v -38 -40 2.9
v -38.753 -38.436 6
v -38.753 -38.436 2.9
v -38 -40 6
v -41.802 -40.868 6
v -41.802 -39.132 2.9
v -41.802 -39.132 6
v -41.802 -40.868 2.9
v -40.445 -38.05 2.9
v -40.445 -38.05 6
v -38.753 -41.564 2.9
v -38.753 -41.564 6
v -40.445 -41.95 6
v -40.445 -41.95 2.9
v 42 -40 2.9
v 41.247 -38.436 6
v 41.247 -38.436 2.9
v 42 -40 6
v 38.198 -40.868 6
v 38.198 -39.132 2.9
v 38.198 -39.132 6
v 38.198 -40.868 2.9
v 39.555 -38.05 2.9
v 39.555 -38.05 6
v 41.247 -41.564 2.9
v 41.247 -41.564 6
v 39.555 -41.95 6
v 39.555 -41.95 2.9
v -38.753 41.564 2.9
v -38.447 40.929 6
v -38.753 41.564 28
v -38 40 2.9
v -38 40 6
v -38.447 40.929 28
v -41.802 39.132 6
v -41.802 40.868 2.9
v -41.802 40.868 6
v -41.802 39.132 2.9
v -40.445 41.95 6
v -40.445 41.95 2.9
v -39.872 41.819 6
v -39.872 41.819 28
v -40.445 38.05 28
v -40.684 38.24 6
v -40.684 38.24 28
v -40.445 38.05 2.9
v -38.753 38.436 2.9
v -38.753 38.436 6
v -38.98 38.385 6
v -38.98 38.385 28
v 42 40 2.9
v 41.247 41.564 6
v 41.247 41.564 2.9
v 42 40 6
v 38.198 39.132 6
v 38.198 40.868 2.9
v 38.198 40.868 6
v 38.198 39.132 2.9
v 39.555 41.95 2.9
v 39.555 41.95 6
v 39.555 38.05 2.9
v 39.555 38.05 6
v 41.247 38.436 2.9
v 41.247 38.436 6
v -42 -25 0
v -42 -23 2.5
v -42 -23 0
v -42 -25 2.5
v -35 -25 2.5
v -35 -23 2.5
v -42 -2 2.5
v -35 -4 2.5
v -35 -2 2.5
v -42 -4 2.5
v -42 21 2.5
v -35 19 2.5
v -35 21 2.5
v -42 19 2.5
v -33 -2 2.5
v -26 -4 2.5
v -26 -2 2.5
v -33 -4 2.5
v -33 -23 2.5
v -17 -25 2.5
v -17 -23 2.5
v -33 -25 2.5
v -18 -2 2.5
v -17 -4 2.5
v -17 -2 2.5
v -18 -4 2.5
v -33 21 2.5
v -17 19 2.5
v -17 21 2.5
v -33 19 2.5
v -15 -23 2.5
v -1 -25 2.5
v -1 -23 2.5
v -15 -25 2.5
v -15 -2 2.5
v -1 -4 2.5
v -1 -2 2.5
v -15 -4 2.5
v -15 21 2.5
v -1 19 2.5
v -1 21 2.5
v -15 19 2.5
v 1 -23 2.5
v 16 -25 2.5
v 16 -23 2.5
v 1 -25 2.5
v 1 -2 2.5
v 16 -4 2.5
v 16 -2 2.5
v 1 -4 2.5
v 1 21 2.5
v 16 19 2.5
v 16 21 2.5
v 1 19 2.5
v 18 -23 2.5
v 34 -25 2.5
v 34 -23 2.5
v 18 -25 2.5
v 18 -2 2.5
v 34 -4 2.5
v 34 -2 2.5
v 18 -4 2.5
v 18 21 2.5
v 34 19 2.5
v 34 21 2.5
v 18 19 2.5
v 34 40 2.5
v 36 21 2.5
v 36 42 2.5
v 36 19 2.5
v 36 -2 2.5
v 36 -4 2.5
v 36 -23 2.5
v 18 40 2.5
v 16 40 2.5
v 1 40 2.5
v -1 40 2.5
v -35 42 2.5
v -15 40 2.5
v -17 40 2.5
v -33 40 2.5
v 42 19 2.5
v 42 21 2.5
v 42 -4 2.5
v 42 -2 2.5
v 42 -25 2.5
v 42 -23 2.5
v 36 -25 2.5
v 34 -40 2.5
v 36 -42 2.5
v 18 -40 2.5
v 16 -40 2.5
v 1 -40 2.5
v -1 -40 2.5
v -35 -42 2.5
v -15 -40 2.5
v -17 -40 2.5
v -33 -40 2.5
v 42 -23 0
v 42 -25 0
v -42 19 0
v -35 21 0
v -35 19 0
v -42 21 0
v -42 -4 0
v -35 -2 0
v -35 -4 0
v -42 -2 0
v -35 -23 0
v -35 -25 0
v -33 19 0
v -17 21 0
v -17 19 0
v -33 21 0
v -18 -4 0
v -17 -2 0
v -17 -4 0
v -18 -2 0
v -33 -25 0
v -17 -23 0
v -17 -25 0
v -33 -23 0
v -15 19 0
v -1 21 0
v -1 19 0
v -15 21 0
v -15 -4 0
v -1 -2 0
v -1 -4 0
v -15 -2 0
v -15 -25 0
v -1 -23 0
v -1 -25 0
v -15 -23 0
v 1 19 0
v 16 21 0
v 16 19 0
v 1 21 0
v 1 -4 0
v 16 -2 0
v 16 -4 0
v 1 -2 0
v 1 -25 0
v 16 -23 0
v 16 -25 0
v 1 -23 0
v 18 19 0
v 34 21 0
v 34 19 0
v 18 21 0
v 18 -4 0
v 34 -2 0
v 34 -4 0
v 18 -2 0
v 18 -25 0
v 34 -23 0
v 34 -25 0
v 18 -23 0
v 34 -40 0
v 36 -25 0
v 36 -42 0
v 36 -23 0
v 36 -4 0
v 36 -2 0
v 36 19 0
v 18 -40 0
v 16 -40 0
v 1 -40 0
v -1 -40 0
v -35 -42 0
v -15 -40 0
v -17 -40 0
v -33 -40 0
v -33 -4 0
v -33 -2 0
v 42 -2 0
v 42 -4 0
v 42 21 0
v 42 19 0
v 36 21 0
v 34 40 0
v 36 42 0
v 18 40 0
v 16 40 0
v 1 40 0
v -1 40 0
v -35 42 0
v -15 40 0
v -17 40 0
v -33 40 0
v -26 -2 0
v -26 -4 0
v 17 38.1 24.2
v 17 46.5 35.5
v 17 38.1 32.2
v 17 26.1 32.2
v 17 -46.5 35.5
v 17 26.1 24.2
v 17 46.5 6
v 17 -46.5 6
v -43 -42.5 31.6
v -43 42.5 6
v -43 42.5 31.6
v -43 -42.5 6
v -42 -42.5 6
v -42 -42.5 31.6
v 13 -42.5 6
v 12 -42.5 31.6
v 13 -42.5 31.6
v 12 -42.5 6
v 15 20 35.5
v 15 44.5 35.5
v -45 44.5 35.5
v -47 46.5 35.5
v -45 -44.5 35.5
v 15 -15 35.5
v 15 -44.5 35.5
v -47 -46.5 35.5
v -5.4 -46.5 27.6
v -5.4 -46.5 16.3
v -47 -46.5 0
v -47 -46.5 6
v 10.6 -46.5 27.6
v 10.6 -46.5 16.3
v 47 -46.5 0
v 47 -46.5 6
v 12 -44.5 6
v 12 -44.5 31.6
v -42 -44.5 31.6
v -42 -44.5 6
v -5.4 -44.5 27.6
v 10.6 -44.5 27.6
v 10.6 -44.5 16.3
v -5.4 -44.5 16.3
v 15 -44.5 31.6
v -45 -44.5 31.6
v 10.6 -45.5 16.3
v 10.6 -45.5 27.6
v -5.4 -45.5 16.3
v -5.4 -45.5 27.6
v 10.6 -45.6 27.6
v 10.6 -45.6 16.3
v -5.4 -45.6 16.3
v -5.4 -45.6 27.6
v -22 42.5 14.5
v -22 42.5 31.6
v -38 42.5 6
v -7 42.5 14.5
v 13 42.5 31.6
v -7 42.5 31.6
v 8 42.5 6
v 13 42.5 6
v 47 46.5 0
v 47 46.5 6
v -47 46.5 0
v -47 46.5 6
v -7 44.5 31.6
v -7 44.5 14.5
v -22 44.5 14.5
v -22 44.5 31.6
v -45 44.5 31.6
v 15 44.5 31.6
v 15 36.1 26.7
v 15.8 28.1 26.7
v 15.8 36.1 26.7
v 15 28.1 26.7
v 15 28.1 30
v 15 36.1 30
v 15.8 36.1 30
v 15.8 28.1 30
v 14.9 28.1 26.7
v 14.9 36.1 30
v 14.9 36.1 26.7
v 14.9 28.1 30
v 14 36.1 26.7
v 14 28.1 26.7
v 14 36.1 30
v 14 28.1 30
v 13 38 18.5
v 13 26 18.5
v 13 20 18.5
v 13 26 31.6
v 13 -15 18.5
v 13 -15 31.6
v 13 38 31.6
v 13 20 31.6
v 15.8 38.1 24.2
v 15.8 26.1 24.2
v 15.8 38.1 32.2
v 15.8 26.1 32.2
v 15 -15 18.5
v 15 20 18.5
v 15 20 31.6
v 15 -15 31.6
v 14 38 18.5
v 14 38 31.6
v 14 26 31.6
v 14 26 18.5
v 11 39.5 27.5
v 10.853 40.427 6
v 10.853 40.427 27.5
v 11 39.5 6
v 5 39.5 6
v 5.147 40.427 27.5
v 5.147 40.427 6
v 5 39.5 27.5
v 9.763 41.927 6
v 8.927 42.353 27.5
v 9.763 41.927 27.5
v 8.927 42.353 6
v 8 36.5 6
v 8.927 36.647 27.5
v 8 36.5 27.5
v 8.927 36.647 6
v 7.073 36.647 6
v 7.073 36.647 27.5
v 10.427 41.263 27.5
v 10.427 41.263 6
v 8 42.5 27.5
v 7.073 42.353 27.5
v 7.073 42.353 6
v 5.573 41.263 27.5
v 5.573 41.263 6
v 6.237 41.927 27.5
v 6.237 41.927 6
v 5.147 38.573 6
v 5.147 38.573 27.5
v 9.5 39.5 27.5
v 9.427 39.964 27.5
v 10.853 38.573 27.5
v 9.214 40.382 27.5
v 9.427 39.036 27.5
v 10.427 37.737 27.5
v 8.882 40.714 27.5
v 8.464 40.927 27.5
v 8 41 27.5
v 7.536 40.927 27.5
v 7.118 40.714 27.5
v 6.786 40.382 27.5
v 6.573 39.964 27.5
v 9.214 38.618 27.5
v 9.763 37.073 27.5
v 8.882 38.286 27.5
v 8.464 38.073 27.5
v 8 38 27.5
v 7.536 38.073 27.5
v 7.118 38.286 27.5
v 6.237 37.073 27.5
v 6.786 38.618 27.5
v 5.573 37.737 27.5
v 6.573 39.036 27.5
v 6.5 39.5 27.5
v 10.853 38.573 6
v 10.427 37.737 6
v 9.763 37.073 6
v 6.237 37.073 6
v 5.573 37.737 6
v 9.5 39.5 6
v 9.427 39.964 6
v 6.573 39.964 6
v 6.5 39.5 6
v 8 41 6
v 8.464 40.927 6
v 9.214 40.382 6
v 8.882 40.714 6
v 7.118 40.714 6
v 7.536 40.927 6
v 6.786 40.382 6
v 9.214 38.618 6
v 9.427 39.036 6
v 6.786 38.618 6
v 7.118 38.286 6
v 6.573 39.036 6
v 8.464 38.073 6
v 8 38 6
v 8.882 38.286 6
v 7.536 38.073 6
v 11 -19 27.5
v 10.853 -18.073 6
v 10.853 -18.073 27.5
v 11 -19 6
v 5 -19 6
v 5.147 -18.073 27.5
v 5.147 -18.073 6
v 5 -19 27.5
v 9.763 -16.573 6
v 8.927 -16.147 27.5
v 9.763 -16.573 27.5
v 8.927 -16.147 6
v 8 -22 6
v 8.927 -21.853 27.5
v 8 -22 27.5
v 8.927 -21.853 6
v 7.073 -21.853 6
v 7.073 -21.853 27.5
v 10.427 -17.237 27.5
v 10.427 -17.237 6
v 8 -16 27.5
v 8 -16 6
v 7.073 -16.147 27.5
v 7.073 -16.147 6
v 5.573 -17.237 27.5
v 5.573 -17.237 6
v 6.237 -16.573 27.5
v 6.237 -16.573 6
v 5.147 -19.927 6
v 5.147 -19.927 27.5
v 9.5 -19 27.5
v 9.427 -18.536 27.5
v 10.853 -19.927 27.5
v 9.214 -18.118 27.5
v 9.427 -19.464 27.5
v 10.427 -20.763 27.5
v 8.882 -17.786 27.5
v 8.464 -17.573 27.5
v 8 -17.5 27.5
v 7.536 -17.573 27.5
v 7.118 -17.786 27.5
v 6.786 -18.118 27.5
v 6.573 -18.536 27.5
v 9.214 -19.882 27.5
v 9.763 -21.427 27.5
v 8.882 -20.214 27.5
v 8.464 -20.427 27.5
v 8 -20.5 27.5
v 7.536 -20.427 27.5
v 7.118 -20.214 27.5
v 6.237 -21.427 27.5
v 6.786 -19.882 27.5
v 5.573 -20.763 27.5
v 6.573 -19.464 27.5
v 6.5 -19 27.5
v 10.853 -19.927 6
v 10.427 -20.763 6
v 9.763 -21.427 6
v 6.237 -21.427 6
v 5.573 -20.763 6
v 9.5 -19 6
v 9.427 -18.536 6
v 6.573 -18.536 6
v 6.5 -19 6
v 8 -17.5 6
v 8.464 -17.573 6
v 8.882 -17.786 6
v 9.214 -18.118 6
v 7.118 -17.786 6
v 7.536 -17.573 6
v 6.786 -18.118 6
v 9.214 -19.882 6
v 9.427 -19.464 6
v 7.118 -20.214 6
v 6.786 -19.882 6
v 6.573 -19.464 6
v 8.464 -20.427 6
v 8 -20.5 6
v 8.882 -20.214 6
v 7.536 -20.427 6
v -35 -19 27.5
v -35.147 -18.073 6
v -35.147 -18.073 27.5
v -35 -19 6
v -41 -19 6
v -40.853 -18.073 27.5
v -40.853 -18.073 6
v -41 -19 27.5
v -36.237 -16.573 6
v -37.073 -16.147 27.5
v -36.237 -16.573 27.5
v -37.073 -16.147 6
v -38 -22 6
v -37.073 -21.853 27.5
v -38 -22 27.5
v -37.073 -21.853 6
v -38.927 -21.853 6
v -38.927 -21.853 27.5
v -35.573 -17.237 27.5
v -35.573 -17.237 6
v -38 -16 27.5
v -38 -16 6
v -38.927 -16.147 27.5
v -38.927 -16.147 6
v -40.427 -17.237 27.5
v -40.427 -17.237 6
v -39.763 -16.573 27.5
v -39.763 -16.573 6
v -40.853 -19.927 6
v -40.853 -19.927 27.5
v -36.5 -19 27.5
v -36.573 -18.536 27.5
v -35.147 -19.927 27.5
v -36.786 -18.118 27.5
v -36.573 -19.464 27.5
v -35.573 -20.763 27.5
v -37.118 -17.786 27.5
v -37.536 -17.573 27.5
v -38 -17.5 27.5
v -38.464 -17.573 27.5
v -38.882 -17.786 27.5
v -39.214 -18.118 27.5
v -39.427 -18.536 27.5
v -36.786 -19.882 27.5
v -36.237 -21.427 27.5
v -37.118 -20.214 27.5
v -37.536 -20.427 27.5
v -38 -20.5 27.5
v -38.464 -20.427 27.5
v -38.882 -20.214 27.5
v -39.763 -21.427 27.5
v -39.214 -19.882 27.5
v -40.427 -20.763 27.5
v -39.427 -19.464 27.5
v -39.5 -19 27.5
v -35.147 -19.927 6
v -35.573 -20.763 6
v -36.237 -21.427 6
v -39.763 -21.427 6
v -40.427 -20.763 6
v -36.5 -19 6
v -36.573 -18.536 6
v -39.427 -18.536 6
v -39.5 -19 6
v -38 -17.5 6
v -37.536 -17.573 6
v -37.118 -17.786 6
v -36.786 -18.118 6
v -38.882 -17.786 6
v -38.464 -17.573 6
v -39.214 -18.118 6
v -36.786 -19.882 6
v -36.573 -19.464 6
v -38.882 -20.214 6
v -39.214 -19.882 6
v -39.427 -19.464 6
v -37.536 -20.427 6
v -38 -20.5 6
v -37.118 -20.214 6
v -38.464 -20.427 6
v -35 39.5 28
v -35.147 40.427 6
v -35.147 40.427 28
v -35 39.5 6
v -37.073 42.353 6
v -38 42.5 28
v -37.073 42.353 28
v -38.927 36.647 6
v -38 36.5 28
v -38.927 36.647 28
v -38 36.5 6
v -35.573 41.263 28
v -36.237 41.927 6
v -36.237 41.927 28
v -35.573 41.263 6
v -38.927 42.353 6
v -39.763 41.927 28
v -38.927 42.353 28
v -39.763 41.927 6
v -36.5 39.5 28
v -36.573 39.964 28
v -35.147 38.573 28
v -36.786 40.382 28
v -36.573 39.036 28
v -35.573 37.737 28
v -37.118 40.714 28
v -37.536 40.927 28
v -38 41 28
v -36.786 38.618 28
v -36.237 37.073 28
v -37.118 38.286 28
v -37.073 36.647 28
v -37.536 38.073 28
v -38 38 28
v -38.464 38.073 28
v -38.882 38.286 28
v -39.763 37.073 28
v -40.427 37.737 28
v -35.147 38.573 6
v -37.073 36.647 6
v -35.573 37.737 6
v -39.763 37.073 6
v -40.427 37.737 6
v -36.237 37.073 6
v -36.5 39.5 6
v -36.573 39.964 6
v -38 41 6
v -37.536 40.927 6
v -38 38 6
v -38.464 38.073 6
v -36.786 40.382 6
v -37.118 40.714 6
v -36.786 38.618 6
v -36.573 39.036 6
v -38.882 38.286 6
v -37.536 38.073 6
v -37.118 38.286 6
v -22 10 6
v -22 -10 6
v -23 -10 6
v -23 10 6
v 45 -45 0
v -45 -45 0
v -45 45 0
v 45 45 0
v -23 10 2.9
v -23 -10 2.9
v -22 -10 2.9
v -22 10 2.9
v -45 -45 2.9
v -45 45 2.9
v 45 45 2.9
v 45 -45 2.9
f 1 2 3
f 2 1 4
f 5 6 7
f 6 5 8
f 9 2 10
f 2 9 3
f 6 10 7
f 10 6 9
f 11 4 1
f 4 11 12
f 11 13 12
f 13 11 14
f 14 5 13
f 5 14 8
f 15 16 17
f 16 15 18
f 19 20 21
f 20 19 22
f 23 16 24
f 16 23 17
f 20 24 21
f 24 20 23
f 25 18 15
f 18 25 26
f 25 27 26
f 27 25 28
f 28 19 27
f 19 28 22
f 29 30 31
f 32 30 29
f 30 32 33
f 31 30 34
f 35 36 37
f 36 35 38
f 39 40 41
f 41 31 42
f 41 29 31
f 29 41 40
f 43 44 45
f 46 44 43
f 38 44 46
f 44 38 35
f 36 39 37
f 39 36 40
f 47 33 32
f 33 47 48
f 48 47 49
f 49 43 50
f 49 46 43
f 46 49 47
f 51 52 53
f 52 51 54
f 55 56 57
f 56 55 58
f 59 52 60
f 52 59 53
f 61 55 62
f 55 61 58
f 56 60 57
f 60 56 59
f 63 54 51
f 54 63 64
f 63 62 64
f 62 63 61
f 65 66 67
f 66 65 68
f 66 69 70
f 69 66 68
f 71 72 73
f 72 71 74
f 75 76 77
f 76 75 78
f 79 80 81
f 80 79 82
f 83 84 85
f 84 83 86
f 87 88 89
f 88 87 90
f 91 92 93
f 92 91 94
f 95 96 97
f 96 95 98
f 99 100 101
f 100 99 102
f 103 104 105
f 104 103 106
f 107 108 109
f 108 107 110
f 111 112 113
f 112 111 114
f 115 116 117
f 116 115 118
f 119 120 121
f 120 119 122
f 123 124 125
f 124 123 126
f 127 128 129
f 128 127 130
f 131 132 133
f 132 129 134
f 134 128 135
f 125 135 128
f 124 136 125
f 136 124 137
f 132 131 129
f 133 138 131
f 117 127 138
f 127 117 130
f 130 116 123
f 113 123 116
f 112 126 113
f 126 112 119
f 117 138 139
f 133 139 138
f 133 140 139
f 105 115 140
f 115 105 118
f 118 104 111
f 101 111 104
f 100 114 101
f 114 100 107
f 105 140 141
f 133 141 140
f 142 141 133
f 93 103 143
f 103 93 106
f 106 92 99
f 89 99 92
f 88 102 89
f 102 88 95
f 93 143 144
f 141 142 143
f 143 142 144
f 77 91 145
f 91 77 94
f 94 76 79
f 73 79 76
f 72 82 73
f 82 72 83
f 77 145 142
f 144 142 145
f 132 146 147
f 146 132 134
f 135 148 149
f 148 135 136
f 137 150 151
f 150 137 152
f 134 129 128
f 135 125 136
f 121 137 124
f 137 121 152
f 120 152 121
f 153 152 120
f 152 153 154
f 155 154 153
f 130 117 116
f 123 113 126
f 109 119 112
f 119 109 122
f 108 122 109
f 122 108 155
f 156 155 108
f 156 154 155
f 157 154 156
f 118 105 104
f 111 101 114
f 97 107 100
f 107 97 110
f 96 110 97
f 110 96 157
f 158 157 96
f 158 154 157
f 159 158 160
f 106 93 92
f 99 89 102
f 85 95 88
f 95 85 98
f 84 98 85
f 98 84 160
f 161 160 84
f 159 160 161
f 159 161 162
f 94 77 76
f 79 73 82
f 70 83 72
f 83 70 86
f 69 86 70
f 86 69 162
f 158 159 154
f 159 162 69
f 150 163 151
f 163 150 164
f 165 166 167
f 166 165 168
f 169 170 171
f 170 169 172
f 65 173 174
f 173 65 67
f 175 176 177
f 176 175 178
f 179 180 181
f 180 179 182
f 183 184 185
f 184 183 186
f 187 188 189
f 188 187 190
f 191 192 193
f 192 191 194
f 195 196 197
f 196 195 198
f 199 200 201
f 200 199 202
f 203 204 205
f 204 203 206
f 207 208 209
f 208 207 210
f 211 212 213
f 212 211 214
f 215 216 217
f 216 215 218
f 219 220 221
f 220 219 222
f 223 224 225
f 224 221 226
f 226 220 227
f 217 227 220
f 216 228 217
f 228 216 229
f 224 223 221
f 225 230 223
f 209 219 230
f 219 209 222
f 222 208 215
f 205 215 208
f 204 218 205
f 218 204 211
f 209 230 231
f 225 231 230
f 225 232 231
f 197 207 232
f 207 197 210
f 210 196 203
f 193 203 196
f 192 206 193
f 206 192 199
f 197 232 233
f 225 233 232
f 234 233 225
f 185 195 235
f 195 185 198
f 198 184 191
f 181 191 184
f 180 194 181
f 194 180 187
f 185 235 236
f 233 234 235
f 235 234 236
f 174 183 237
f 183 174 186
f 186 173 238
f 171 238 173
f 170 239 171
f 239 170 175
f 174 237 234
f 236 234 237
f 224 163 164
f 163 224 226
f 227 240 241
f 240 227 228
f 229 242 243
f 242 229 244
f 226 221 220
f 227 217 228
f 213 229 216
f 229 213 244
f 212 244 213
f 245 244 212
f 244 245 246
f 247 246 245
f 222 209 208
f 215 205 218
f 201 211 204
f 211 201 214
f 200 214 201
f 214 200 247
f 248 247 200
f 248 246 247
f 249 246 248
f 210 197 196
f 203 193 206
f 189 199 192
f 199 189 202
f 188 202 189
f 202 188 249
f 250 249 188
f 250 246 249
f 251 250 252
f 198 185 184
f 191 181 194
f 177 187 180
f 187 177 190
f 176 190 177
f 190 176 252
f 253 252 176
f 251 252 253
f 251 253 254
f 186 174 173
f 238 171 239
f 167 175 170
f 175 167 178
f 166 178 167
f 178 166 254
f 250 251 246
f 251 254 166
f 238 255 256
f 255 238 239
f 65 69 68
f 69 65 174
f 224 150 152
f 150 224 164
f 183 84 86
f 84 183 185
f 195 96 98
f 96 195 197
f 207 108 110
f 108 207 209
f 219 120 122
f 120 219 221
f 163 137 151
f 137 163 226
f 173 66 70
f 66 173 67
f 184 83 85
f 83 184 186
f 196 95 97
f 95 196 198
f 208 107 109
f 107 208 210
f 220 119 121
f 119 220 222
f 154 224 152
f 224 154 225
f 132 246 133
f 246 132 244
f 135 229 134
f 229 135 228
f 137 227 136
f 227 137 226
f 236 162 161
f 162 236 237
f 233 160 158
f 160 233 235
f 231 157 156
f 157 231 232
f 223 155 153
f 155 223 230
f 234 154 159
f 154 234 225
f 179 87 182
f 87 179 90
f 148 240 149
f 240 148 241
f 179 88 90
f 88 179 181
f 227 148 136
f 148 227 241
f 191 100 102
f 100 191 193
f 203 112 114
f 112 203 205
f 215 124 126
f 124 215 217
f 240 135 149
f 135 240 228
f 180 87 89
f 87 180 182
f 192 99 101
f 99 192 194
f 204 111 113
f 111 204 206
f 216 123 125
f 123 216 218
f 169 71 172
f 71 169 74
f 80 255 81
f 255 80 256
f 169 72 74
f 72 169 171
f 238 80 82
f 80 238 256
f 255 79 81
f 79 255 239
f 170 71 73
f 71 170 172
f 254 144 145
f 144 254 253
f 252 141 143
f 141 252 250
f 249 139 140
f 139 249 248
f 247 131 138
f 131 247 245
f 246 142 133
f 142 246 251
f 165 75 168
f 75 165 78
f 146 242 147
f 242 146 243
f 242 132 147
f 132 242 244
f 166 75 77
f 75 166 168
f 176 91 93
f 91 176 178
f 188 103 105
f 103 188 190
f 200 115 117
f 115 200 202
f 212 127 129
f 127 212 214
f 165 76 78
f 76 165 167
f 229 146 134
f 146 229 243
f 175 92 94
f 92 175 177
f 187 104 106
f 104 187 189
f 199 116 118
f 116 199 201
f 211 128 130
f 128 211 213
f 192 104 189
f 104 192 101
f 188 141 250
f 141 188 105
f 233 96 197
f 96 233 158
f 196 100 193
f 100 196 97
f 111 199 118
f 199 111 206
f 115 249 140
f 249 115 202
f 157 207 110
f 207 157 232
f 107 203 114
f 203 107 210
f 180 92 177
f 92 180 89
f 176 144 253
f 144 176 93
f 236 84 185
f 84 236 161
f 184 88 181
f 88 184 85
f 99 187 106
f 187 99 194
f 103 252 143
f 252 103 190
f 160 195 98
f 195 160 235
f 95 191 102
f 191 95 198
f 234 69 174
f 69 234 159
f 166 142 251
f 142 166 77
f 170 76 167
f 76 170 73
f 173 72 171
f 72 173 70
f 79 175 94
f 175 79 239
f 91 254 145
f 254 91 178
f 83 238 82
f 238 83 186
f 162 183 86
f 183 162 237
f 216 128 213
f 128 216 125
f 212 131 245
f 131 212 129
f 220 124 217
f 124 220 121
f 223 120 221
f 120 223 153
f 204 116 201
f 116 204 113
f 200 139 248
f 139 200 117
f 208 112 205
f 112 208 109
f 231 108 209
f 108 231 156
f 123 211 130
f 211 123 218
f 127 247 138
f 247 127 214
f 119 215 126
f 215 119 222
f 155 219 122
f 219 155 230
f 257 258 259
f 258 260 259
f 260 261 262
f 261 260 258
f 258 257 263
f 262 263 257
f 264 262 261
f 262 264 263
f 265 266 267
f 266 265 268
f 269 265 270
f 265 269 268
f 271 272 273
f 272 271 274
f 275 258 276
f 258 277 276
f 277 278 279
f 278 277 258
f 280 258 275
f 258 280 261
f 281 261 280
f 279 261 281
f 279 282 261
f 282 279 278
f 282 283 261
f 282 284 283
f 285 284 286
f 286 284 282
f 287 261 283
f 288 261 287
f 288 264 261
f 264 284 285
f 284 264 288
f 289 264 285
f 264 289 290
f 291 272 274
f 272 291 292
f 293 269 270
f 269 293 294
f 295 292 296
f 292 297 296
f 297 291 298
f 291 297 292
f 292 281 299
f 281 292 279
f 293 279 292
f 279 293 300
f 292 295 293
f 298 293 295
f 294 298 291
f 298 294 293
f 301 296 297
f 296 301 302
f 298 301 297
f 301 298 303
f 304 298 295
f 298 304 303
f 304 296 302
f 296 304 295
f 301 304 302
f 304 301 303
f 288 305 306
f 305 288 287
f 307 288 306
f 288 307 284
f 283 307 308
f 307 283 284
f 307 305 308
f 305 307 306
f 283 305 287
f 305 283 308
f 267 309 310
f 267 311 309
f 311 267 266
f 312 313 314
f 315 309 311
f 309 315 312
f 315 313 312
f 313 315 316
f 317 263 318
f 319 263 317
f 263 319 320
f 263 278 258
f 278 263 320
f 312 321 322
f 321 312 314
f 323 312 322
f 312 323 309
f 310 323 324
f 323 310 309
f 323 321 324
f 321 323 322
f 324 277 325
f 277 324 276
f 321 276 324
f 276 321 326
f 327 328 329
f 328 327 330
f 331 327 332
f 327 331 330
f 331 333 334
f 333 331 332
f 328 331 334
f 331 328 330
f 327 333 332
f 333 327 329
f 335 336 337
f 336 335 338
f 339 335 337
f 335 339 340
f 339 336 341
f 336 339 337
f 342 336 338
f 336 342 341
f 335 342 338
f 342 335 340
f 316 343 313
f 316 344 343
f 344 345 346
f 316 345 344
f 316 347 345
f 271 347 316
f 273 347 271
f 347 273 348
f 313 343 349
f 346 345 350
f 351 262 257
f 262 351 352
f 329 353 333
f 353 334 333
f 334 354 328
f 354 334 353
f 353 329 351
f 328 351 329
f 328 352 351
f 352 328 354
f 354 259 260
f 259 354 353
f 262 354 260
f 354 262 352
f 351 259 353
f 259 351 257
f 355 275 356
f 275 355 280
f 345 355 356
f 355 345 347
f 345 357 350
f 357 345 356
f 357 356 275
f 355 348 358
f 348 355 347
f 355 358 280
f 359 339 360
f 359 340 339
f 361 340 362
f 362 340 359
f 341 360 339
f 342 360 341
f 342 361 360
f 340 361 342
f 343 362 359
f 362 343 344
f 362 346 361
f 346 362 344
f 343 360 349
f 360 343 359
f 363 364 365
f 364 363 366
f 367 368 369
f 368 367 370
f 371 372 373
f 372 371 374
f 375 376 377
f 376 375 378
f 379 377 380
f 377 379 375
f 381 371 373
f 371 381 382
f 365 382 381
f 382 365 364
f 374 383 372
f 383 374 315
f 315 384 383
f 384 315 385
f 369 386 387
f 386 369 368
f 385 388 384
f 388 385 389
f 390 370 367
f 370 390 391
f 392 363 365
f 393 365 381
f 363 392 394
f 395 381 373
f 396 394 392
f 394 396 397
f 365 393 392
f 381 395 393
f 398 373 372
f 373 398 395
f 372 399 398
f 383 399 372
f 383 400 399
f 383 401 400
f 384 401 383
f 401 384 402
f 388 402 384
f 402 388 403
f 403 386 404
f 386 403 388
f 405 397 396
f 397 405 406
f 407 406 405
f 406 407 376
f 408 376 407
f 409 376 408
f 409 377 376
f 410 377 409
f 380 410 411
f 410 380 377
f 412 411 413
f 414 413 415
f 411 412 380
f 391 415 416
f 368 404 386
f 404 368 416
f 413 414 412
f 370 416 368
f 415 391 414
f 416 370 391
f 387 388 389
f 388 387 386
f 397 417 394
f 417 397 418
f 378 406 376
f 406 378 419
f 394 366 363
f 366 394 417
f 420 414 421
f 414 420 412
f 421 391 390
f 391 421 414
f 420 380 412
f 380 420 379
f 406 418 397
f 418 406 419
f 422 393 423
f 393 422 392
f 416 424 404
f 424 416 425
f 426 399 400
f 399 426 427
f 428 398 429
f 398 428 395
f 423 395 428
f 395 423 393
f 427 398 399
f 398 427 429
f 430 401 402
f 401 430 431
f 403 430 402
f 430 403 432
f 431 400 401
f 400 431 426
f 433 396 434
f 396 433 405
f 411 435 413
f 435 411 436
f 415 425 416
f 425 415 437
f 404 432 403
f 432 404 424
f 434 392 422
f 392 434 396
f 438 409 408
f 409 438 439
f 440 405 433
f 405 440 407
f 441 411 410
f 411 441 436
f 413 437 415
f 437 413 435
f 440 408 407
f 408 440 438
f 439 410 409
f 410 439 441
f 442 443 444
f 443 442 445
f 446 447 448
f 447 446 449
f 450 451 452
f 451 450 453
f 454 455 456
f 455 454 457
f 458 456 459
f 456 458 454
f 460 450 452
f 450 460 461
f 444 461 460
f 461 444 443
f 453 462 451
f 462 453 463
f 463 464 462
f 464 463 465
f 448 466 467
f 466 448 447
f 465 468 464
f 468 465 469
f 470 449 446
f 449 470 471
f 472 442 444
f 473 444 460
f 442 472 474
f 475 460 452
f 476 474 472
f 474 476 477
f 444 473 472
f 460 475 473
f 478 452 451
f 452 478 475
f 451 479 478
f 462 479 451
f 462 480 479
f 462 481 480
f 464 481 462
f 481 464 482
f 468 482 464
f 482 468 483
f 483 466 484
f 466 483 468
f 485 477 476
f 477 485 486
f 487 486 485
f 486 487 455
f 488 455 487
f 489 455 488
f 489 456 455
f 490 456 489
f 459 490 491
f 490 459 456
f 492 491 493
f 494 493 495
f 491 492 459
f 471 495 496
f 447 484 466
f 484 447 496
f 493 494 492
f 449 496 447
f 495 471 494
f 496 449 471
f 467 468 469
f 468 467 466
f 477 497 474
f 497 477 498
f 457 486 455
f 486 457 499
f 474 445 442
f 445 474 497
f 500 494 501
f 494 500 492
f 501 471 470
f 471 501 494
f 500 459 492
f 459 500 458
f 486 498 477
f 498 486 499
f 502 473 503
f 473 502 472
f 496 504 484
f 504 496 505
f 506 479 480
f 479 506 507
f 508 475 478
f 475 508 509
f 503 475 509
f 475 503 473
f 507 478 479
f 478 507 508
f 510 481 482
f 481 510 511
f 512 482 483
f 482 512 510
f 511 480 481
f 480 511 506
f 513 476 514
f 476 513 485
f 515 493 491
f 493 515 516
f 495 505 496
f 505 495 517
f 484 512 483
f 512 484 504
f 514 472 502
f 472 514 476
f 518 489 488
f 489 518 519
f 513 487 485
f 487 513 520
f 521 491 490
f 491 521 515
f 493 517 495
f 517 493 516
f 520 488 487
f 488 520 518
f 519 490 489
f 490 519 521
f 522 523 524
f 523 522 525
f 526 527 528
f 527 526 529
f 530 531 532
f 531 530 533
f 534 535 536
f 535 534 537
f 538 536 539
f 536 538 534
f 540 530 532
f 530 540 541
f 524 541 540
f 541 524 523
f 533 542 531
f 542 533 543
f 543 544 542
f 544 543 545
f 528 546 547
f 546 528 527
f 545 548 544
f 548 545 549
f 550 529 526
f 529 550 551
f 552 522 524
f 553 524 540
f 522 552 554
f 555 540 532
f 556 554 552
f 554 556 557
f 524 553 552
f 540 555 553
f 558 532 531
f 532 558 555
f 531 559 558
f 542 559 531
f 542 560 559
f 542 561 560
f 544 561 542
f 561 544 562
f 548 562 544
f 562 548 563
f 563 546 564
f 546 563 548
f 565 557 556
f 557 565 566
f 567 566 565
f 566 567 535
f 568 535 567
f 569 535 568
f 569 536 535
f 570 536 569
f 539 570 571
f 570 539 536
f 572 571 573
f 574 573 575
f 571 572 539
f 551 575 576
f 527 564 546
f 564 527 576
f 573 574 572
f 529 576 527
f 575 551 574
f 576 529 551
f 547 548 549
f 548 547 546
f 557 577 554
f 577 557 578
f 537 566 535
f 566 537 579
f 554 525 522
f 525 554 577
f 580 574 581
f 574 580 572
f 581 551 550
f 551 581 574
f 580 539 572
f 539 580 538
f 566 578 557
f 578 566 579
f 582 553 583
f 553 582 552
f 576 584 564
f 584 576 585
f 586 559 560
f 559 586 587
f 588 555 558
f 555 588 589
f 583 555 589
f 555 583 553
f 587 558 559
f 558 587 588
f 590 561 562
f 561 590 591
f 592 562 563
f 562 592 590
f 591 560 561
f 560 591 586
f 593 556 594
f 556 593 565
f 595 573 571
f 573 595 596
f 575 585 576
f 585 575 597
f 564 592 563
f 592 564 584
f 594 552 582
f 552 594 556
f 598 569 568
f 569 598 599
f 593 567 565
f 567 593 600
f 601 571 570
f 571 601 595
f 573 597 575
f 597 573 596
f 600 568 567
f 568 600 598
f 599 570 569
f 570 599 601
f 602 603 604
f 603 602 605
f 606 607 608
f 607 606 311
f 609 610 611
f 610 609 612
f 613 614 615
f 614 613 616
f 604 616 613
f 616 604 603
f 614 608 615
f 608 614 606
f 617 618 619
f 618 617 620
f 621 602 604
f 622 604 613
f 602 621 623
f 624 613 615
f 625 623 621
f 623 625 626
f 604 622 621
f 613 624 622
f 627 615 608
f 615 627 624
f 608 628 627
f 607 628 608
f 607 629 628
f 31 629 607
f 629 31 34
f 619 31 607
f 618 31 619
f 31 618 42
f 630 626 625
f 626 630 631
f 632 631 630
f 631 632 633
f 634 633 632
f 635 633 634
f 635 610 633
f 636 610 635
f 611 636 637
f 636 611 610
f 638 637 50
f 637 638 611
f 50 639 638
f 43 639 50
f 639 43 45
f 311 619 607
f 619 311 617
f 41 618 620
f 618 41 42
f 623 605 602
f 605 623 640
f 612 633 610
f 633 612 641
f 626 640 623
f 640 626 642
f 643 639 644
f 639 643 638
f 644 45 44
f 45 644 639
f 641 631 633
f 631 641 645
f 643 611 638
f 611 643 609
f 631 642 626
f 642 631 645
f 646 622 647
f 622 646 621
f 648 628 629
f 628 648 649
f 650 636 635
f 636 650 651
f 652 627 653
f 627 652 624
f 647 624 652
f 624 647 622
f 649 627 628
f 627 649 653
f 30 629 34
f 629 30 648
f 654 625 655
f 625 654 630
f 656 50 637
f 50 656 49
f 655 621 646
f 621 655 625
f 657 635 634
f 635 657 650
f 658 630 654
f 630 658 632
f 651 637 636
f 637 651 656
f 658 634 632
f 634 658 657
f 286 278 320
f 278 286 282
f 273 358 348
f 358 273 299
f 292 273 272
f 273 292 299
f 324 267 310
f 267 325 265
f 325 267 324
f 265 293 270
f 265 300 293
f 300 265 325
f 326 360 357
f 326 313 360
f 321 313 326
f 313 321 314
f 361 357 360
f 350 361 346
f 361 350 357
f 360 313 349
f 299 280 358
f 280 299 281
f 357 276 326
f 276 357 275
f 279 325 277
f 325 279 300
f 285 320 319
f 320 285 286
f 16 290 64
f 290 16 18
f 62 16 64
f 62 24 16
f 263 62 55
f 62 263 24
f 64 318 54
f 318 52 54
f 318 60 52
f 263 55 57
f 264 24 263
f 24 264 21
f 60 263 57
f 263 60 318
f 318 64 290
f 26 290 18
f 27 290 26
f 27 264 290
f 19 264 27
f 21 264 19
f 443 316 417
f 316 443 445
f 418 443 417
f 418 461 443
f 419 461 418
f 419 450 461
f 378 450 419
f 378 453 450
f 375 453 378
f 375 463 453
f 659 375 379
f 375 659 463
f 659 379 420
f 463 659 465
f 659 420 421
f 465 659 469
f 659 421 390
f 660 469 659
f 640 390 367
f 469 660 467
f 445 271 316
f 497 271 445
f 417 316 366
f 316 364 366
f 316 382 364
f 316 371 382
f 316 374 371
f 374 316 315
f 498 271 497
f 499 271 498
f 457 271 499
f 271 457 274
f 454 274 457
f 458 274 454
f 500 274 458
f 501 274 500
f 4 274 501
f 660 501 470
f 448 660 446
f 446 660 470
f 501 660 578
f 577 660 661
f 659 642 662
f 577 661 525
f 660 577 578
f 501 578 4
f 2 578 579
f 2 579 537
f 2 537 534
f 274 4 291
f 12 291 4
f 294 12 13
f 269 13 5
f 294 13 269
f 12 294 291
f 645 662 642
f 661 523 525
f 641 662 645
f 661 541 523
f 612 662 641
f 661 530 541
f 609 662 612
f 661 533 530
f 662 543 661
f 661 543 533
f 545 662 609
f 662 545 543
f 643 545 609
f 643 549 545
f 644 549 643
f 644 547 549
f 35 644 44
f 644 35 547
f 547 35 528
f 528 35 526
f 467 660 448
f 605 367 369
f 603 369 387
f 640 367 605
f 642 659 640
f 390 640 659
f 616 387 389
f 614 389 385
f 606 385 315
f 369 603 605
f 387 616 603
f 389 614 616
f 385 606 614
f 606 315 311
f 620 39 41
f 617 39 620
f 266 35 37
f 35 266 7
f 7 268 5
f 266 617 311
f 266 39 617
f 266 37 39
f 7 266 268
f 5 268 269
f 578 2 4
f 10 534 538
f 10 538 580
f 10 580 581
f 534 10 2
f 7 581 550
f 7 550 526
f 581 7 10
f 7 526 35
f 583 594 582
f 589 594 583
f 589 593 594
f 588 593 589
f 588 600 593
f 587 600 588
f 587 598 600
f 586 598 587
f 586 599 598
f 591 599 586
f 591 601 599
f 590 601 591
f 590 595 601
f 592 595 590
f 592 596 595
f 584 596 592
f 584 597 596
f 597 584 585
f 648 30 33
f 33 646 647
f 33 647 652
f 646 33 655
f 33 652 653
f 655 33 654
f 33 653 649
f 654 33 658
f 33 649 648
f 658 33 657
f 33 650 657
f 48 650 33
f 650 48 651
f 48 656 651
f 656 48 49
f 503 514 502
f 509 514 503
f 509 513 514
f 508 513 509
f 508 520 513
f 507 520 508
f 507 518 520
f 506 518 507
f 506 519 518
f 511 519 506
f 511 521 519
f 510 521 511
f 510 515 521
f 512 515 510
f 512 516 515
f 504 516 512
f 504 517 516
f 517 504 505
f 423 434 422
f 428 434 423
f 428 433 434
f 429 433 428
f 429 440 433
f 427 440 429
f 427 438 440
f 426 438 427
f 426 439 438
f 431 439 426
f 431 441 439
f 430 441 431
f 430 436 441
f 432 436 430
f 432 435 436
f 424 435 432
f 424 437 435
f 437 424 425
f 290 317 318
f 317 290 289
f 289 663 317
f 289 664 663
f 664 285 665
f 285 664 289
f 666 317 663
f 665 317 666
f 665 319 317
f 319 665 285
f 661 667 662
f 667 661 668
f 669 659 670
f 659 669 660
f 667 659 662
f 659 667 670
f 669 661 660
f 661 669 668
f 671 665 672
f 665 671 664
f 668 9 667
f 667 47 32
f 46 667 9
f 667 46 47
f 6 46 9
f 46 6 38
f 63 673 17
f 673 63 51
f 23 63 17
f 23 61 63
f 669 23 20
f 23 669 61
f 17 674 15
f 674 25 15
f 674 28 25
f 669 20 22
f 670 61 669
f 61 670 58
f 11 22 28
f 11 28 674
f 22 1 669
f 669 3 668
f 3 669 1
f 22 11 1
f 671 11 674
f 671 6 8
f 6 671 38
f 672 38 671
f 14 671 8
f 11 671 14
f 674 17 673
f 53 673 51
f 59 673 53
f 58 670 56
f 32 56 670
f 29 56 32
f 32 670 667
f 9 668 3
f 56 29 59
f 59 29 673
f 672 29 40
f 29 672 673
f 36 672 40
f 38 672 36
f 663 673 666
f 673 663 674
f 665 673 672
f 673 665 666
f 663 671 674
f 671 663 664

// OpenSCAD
// file: alsaCam.scad
//creaAlsaCamara(5);
alsaCamTorR = 1;

// creaAlsaCamara(10);

module creaAlsaCamara( intAlsaCamH )
{    
    difference(){

        translate([-13,-2.9,0])
        cube([26,17,intAlsaCamH]);

        //Tornillos camara
        translate([-10,12,-0.1])
        cylinder(r=alsaCamTorR,intAlsaCamH+0.4,$fn=20);
        translate([10,12,-0.1])
        cylinder(r=alsaCamTorR,intAlsaCamH+0.4,$fn=20);
        translate([-10,-1,-0.1])
        cylinder(r=alsaCamTorR,intAlsaCamH+0.4,$fn=20);
        translate([10,-1,-0.1])
        cylinder(r=alsaCamTorR,intAlsaCamH+0.4,$fn=20);

    }
}
// file: ../../Letras.scad
if(0)
{
logo(10,2,2,4);
}

//dMin(10,2,2);
module dMin(iSize,iPared,iH)
{
    translate([iPared*1.59,0,0])
    {
    cMin(iSize*.53,iPared*.53,iH);
    translate([iPared*.75,0,0])
    cube([iPared,iSize,iH]);
    }
}

module tMin(iSize,iPared,iH)
{
  iSize = iSize*0.9;
  translate([0,iSize*.1,0])
  {
  difference()
  {
    hull()
    {
      translate([-iPared*.7,0,0])
      cube([iPared,iSize*1,iH]);

      cube([iSize*.4,iPared,iH]);

      translate([-iPared*.3,0,0])
      cylinder( r=(iPared*0.6), iH, $fn=100 );     
    }
    
    translate([iPared,iPared,-0.1])
    hull()
    {
      translate([-iPared*.7,0,0])
      cube([iPared,iSize*1,iH]);

      cube([iSize*.4,iPared,iH]);

      translate([-iPared*.35,0,0])
      cylinder( r=(iPared*0.6), iH+2, $fn=100 );     
    }
    
    translate([iSize*.28,-iSize*.4,-0.1])
    cube([iSize,iSize,iH+2]);
    
  }
  
  translate([-(iSize*.35),iSize*.6,0])
  cube([iSize*.6,iPared,iH]);
  
  }
        
}


module eLe(iSize,iPared,iH)
{
    translate([-iPared*.7,0,0])
    cube([iPared,iSize*1,iH]);
    
    cube([iSize*.4,iPared,iH]);
}

module hMin(iSize,iPared,iH)
{
    puente(iSize,iPared,iH);
    
    translate([-iPared*.7,0,0])
    cube([iPared*.85,iSize*1,iH]);
   
}

module nMin(iSize,iPared,iH)
{
    puente(iSize,iPared,iH);
    
    translate([-iPared*.7,0,0])
    cube([iPared*.85,iSize*.57,iH]);
   
}

module cMin(iSize,iPared,intcH)
{
    translate([0,iSize*0.6,0])
    {
    difference()
    {
        oMin(iSize, intcH);
        
        translate([0,-iPared*1.15,-0.1])
        cube([iSize*.8,iPared*2.2,intcH+1]);
    }
    }
}




module Te(iSize, iPared)
{
    translate([-(iPared*1/2),0,0])
    cube( [iPared*1, iSize, leth] );
    
    translate([-(iSize*0.8)/2,iSize-iPared*1,0])
    cube( [iSize*0.8,iPared*1, leth] );
}

module oMin(intoSize, intoH)
{
  difference()
  {
    cylinder( r=(intoSize*0.6), intoH, $fn=100 );
    
    translate([0,0,-0.1])
    cylinder( r=(intoSize*0.3), intoH*2, $fn=100 );
    //cylinder( r=(iSize/2)-iPared, iH+1, $fn=100 );
  }
}



module eMin(iSize,iPared,inteH)
{
    rotate([0,0,10])
    translate([0,iSize*0.0,0])
    {
    difference()
    {
        translate()
        cMin(iSize, iPared*1.8, inteH);
        
        translate([0,-iPared*1.3,-0.1])
        cube([iSize*.8,iPared,inteH+1]);
    }
    
    rotate([0,0,15])
    translate([-iSize*.15,iPared*4,0])
    cube([iSize*.9,iPared*3.5,inteH]);
    }
}

module De(iSize,iPared,iH)
{
  translate([0, iSize/2, 0])
  difference()
  {
      mediaLuna(iSize, iH);
      
      translate([-(iSize*0.08), 0, -0.5])
      mediaLuna(iSize*0.8, iH+1);
  }
  
  translate([0,iPared*.2,0])
  cube([iPared*.8, iSize*.9, iH]);
}


module mediaLuna(iSize, iH)
{
  difference()
  {
    cylinder( r=iSize/2, iH, $fn=100 );
      
    translate([-iSize, -iSize/2, -0.1])
    cube(iSize,iSize,iH);
  }
}

module puente(iSize,iPared,iH)
{
    
    difference()
    {
        
    hull()//Exterior
    {
        translate([iSize*0.37,iSize*0.45,0])
        cylinder(r=iPared*.5,iH,$fn=50);
        
        cube([iSize*0.45,iSize*0.51,iH]);
    }
    
    translate([-iPared*.8,-iPared*.8,-0.1])
    hull()//Interior
    {
        translate([iSize*0.42,iSize*0.5,0])
        cylinder(r=iPared*.3,iH,$fn=50);
        
        cube([iSize*0.47,iSize*0.47,iH+1]);
    }
    
    }
}

module oCua(iSize,iH)
{
    cube([iSize*0.4,iSize*0.4,iH]);
    
    translate([iSize*0.5,0,0])
    difference()
    {
        cube([iSize*0.15,iSize*0.6,iH]);
        
        translate([-iSize*0.15,-iSize*0.11,-0.1])
        rotate([0,0,-45])
        cube([iSize*0.25,iSize*0.6,iH*2]);
        
        
        translate([-iSize*0.35,iSize*0.45,-0.1])
        rotate([0,0,-45])
        cube([iSize*0.25,iSize*0.6,iH*2]);
    }
    
    translate([-iSize*.05,iSize*0.06,0])
    difference()
    {
        translate([-iSize*.1,iSize*.445,0])
        cube([iSize*.8,iSize*0.15,iH]);
        
        translate([iSize*0.3,iSize*0.3,-0.1])
        rotate([0,0,-45])
        cube([iSize*0.25,iSize*0.6,iH*2]);
        
        translate([-iSize*0.28,iSize*0.45,-0.1])
        rotate([0,0,-45])
        cube([iSize*0.25,iSize*0.6,iH*2]);

    }
    
    
    
    
}

module logoSimple(letsize,letpared,leth,letoffset)
{
    //De(letsize,letpared,leth);
    dMin(letsize,letpared,leth);
    
    translate([(letsize*0.59)+(1*letoffset),letsize*0,0])
    oCua(letsize,leth);
    
    translate([(letsize*1.5)+(2*letoffset),0,0])
    tMin(letsize,letpared*.8,leth);   
    
    translate([(letsize*2.1)+(3*letoffset),0,0])
    eMin(letsize*.53,letpared*.3,leth);
    
    translate([(letsize*2.8)+(4*letoffset),0,0])
    cMin(letsize*.53,letpared*.53,leth);
    
    translate([(letsize*3.3)+(5*letoffset),0,0])
    hMin(letsize,letpared,leth);

    
}

module logo(letsize,letpared,leth,letoffset)
{
    //De(letsize,letpared,leth);
    dMin(letsize,letpared,leth);
    
    translate([(letsize*0.59)+(1*letoffset),letsize*0,0])
    oCua(letsize,leth);
    
    translate([(letsize*1.5)+(2*letoffset),0,0])
    tMin(letsize,letpared*.8,leth);   
    
    translate([(letsize*2.1)+(3*letoffset),0,0])
    eMin(letsize*.53,letpared*.3,leth);
    
    translate([(letsize*2.8)+(4*letoffset),0,0])
    cMin(letsize*.53,letpared*.53,leth);
    
    translate([(letsize*3.3)+(5*letoffset),0,0])
    hMin(letsize,letpared,leth);
    
    translate([(letsize*4)+(6*letoffset),leth*.75,0])
    cylinder(r=letpared*.75,leth,$fn=50);
    
    translate([(letsize*4.45)+(7*letoffset),0,0])
    nMin(letsize,letpared,leth);
    
    translate([(letsize*5.3)+(8*letoffset),0,0])
    eMin(letsize*.5,letpared*.3,leth);
    
    translate([(letsize*5.85)+(9*letoffset),0,0])
    tMin(letsize,letpared*.8,leth);

    
}
// file: Frame.scad
include <Diffracter.scad>

frameW = 80-1.5;//Real hole width - burr
frameH = 75-1.5;//Real hole height - burr
frameD = 2.5;

winW = frameW - 8;
winH = frameH - 16;

slideW = winW + 4;
slideH = winH + 10;
slideD = 0.8;

//Activate this to display
if(false)
{
  Frame();
}

module Frame()
{
difference()
{

  translate([-frameW/2,-frameH/2,0])
  cube([frameW,frameH,frameD]);

  //areaSello();
  translate([-winW/2,-winH/2,-0.1])
  cube([winW,winH,frameD*2]);

  translate([-slideW/2,-slideH/2,frameD-slideD])
  cube([slideW,slideH,2]);

}
}


module areaSello()
{
  //cylinder(r=(raspSellR/2)-1,frameD);

  translate([-(frameW)/2,-(frameH)/2,0])
  cube([frameW,frameH,frameD]);
}
// file: Diffracter.scad
//include <Tapa.scad>
include <../../library.scad>


bigW = 88;
ori = bigW/2;
raspSellR = 59;
tuboH = 140;
H = 18.5 + 9;
selloH = 7;
tornR = 2;

huecoPared = 12;
huecoH = 22;
selloHembraRadio=40;

//Activate this to display
if(0)
{
//translate([0,0,bigW/2])
//rotate([0,90,0])
diffracter();


//soporteCylinder(radio=25.2,altura=3.8);

}


module diffracter(){	

difference(){

//Bloque
translate([-bigW/2,-bigW/2,0])
cube([bigW,bigW,H]);

/*
translate([
						-(bigW-huecoPared)/2,
						-(bigW-huecoPared)/2,
						(huecoH/2)
					])
		cube([
					bigW-huecoPared,
					bigW-huecoPared,
					H-huecoH]
				);*/


//Diffractador
translate([-37.25,-40,-0.1])
cube([74.5,80,5.6]);

//Macro
translate([0,0,5.4])
cylinder(r=(74.5/2),8.2,$fn=100);

//Sello de raspberry
//translate([0,0,-0.1])
//cylinder(r=(raspSellR/2)+1,2);

//Tubo
//translate([0,0,-0.1])
//cylinder(r=(52/2),200);

//Tornillos abajo
translate([-ori+4,-ori+4,-0.1])
cylinder(r=tornR,20);
translate([ori-4,-ori+4,-0.1])
cylinder(r=tornR,20);
translate([-ori+4,ori-4,-0.1])
cylinder(r=tornR,20);
translate([ori-4,ori-4,-0.1])
cylinder(r=tornR,20);

//Hueco
cylinder(r=36,H+1);

//Tornillos caja
translate([0,0,(tuboH/2)-7])
rotate([0,90,0])
tornillosArriba();

//Tornillo tripie
translate([-ori-0.1,0,(tuboH/2)+7])
rotate([0,90,0])
cylinder(r=5/2,5.31);

//Sello hembra
//translate([0,0,H-3])
//cylinder(r=selloHembraRadio,4);

}

//Sello cobertura
//translate([0,0,H-1])
//huyoMasPared(58,3,3);


}
// file: Camara.scad
include <Sello35GradosCorto.scad>
include <alsaCam.scad>
include <../../library.scad>


camaraPared  = 8;

tuboSellDiam = 52+3;//52mm+2 holgura
tuboSellR = tuboSellDiam / 2;
tuboSellP = 3.5;//Profundidad del sello


camCableX = 1.4;
camCableY = 20;

if( 0 )
{
    creaCamBase();
}


module creaCamBase()
{
    difference()
    {
        //Pared
        translate([-(bigW-2)/2,-(bigW-2)/2,0])
        cube( [(bigW-2),(bigW-2),camaraPared] );
        
        //Sello hembra
        translate([0,0,camaraPared-4])
        huyoMasPared(68,7,4.2,$fn=100);
        //Ahorro de material
        translate([0,0,camaraPared-4])
        huyoMasPared(42,11,4.2);
        
        //Pasa cable
        pasaCable();
        
        //Tornillos
        tornPass();
        
        
    }
    
    //translate([0,0,10])
    creaAlsaCamara( 25 );
}

module pasaCable()
{
    //Pasa cable
    rotate([0,0,90])
    translate([-15, -camCableY/2, -0.1])
    cube( [camCableX, camCableY, 20] );
}
// file: ../../library.scad
module tubo(
	h/*Altura*/,
	w/*Pared*/,
	d/*Diametro*/
){
  difference()
  {
    cylinder(r=(d/2), h);
    translate([0,0,-0.1])
    cylinder(r=(d/2)-(2*w), h+0.2);
  }
}

module huyoMasPared(
	d/*Diametro del hoyo*/,
	w/*Pared*/,
	h/*Altura*/,
){
  difference()
  {
    cylinder(r=((d+(2*w))/2), h);
    translate([0,0,-0.1])
    cylinder(r=(d/2), h+0.2);
  }
}

module cuboMasPared(
    w1, //Largo
    w2, //Ancho
    p1, //Pared
    p2, //Pared
    h   //Alto
)
{    
    difference()
    {
        translate([-(w1+(p1*2))/2,-(w2+(p2*2))/2,0])
        cube([(w1+(p1*2)),(w2+(p2*2)),h]);
        
        translate([-w1/2,-w2/2,-0.2])
        cube([w1,w2,h*2]);
        
    }
    
    
}

soporteW = 0.7;

module soporteCylinder()
{
  difference()
  {
	cylinder(r=radio,altura);

	translate([0,0,-0.1])
	cylinder(r=radio-soporteW,altura+0.2);
  }

  if(true){
  difference()
  {
	cylinder(r=radio+0.75,1);

	translate([0,0,-0.1])
	cylinder(r=radio-0.75,1.25);
  }}

}

module soporteOval()
{
  difference()
  {
	oval(w=ancho, h=largo, height=alto, center = false);

	translate([0,0,-0.1])
	oval(ancho-soporteW, largo, alto+0.2);
  }

  difference()
  {
	oval(w=ancho+1, h=largo+1, height=1, center = false);

	translate([0,0,-0.1])
	oval(w=ancho-1, h=largo-1, height=1.25, center = false);
  }

}


module oval(w,h, height, center = false)
{
  scale([1, h/w, 1]) cylinder(h=height, r=w, center=center);
}
// file: Sello35GradosCorto.scad
include <Diffracter.scad>
include <Frame.scad>
include <../../library.scad>

include <../../Letras.scad>

// 3.15° for every 100 l/mm

angulo = 35;

coberW = bigW+6;
coberH = 6;
coberOffset = 9;//Posición del tubo
coberOffset2 = 5;//Altura del tubo (-7)->(-8)
cobeSellH = 4;
cobeSellW1 = 7;
cobeSellW2 = 7;

torrRadio = 2;
conoRadio = 38.8;

camCubeW = 62;
camCubeH = 70;
camCubeD = 7;



//soporteCylinder(radio=29,altura=coberH);	
//soporteOval(ancho=28, largo=25, alto=coberH);
//soporteCylinder(radio=34,altura=coberH);
//frameSello();

if(false)
{
    translate([0,coberW/2,0])
    creaSello();
    
    
}

// translate([33,25,cobeSellH+1.1])
// %cube([40,40,1]);


module creaCamBase()
{
    difference()
    {
        //Pared
        cube( [camCubeW,camCubeH,camCubeD] );
        
        //Tornillos
        tornillosBaseCamara( camCubeD + 0.4 );
        
    }
}

module tornillosBaseCamara( intBaseCamTorH )
{
    translate( [12,4,-0.2] )
    huecoParaTornillo(intBaseCamTorH);        
    translate( [12,camCubeH-4,-0.2] )
    huecoParaTornillo(intBaseCamTorH);
    
    translate( [camCubeW-4,4,-0.2] )
    huecoParaTornillo(intBaseCamTorH);
    
    translate( [camCubeW-4,camCubeH-4,-0.2] )
    huecoParaTornillo(intBaseCamTorH);
}

module creaSello()
{
    difference()
    {
    createAll();

    translate([-100,-100,-200])
    cube([200,200,200]);
    
    translate([bigW*.22,bigW*.33,coberH-0.5])
    oCua(24,2);

    }   
}

module createAll()
{

difference()
{
areaExterna();

//Tubo Interno
translate([23-coberOffset,0,-32.9+coberOffset2])
rotate([0,-angulo,0])/*3.15 cada 100 (antes 40)*/
//cylinder (r1 = conoRadio, r2 = (51.7-6)/2, h = 70, $fn = 100);
cylinder (r1 = conoRadio, r2 = (51.7-8)/2, h = 70, $fn = 100);

//Cuadro de la pared
creaContorno();
translate([-bigW/2,-bigW/2,-40+coberH-6])
cube([bigW,bigW,40]);

//Tornillos
tornPass();

//Contorno
creaContorno();

}

//creaSelloMacho();

}



module huecoParaTornillo( intTorH )
{
    cylinder(r=torrRadio,intTorH,$fn=20);
}

module huecoParaCabezaTornillo( cabezaR,  intTorH )
{
    cylinder(r=cabezaR,intTorH,$fn=20);
}



module creaContorno()
{

 difference()
 {
   translate([-(coberW-4.5)/2,-(coberW-4.5)/2,-3])
   cube([(coberW-4.5),(coberW-4.5),coberH]);

   translate([-(coberW-15)/2,-(coberW-23)/2,-3])
   cube([(coberW-15),(coberW-23),coberH]);
 }
}



module creaSelloMacho()
{

 translate([0,0,coberH-cobeSellH])
 difference()
 {
  areaSello(frameD=cobeSellH);

  translate([-(frameW-cobeSellW1)/2,-(frameH-cobeSellW2)/2,-0.1])
  cube([frameW-cobeSellW1,frameH-cobeSellW2,cobeSellH+1]);
 }
}

module areaExterna()
{
//Cobertura
translate([-coberW/2,-coberW/2,0])
cube([coberW,coberW,coberH]);

//TuboExterno
translate([23-coberOffset,0,-33+coberOffset2])
rotate([0,-angulo,0])/*3.15 cada 100 (antes 40)*/
//cylinder(r=(51.7)/2,48);
cylinder (r1 = conoRadio+3, r2 = 51.7/2, h = 70, $fn = 100);

//Áre para sellar la cámara
translate([-45.5,-camCubeH*.5,4])
rotate([0,-angulo,0])
creaCamBase();
    
}


module recorteOval()
{
  translate([-0.4,0,-1.9])
  oval(26.8,22.9, 15, center = false);
}

module tornPass()
{
translate([-ori+4,-ori+4,-0.1])
cylinder(r=torrRadio,30);
translate([ori-4,-ori+4,-0.1])
cylinder(r=torrRadio,30);
translate([-ori+4,ori-4,-0.1])
cylinder(r=torrRadio,30);
translate([ori-4,ori-4,-0.1])
cylinder(r=torrRadio,30);
}
// main file
include <Sello35GradosCorto.scad>
include <../../library.scad>
include <Camara.scad>



//**************************
// Importados de la creación
// de la caja de raspberry pi
//**************************
pared = 4;
pared2 = 2*pared;
medPared = pared/2;

raspX = 56;//58
raspY = 85;//85
raspZ = 15.5;//15.5
raspD1 = 5;
raspDP = 22.5;
raspD2 = raspDP+pared2;//Altura lados
raspAlza = 2.6;//2.6
offsetElec = -2.5;
//**************************

cajaBaCamH = 5;
camCableX = 1;


//translate([0,0,1])
difference()
{
    
    creaCaja();
    
    translate([-(bigW+2)/2,-(bigW+2)/2,-0.1])
    cube([bigW+2,bigW+2,3]);
}

creaTrabes();

trabesH = 2.5;
module creaTrabes()
{
    translate([-42,-25,0])
    cube([84,2,trabesH]);
    
    translate([-34,-42,0])
    cube([70,2,trabesH]);
    
    translate([-18,-4,0])
    cube([60,2,trabesH]);
    
    translate([-42,-4,0])
    cube([16,2,trabesH]);
    
    translate([-34,40,0])
    cube([70,2,trabesH]);
    
    translate([-42,19,0])
    cube([84,2,trabesH]);
    
    translate([-1,-42,0])
    cube([2,84,trabesH]);
    
    translate([-17,-42,0])
    cube([2,84,trabesH]);

    translate([-35,-42,0])
    cube([2,84,trabesH]);
    
    translate([34,-42,0])
    cube([2,84,trabesH]);
    
    translate([16,-42,0])
    cube([2,84,trabesH]);
    
}


//
//translate([20,-46,-5])
//%cube([13,13,13]);

module creaCaja()
{
    difference()
    {
        //Toda el área
        //translate([0,-1,2])//Pone a nivel
        camBaCajAreaExterna();
        
        //Pasa Cable
        pasaCable();
        
         //Tornillos
        tornPass();
                
    }
    
   
   
    

    
    
    
    
    
    

    
}

module pasaCable()
{
    //Pasa cable
    //rotate([0,0,-90])
    translate([-(camCubeW/2)+8, -camCableY/2, -0.1])
    cube( [camCableX, camCableY, 20] );
}

module camBaCajAreaExterna()
{
    //Pared
    translate([-(coberW/2),-((coberW-1)/2), 0])
    cube([coberW,coberW-1,6]);
    
    //Caja de raspberry pi
    translate([-(raspX/2)+3,(-raspY/2)-0.5,1])
    camaraBaseCaja();
    
    
    
    
    //cube( [camCubeW,camCubeH,camaraPared] );
    
}



module camaraBaseCaja()
{

difference()
{
    

//Cubo
translate([38,0.5,raspD2+4])
rotate([0,180,0])
bigCaja();


//Hueco tapa
//translate([-medPared,-medPared,raspDP])
translate([38+medPared,0.5-medPared,raspD2+4.1])
rotate([0,180,0])
cube([raspX+pared,raspY+pared,pared]);



}
}



module bigCaja()
{
//crearRaspCard();
translate([0,0,raspDP+raspD1+6])
cuatroTorn(3);
ladoConnector();
ladoUSB();
ladoMiniSD();
ladoPines();
}


module ladoPines()
{
translate([raspX,-pared,0])
cube([pared,raspY+pared2,raspD2]);
}


module ladoMiniSD()
{
difference()
{
translate([-pared,raspY,0])
cube([raspX+pared+3,pared,raspD2]);

translate([(raspX/2)-8,raspY-1,pared-8])
cube([15,medPared+1,25]);
}

}

module ladoUSB()
{

difference()
{

translate([-pared,-pared,0])
cube([raspX+pared,pared,raspD2]);

translate([1,-medPared,pared+raspAlza-4])
cube([54,medPared+0.1,28]);
    
//LAN 1
translate([2.4,-medPared-(medPared/2),pared+raspAlza+1.3])
cube([16,medPared,11.3]);

//LAN 2
translate([2.4,-pared-(medPared/2)-0.1,pared+raspAlza+1.3])
cube([16,medPared,11.3]);

}

}





module ladoConnector()
{


translate([-pared,-1,raspD2-pared])
cube([medPared,raspY+2,pared]);

difference()
{
translate([-pared,-1,0])
cube([pared,raspY+2,raspD2]);

translate([-pared-1,raspY-16.4,5.8+offsetElec])//z=5.8
cube([2.2,12,8]);

translate([-2,27.5,pared-12])
cube([3.1,35,25]);

translate([-1,68.5,pared-12])
cube([2,12,25]);

translate([-pared+1,raspY-14.4,pared+raspAlza+1.4])
{
    translate([0,0,offsetElec])
	cube([1,8,3.3]);
	translate([1.1,0,offsetElec])
	cube([1,8,3.3]);
}

}

}







module crearRaspCard()
{
	cube([raspX,raspY,pared]);
	cuatroTorn(3);

	translate([-1,-1,0])
	cube([raspX+2,raspY+2,pared]);

}



module cuatroTorn(radio)
{
	
    translate([raspD1,raspY-raspD1+2,0])
    rotate([0,180,0])
	cylHue(raspD2-5,radio);
    
    
	translate([raspX-raspD1,raspY-raspD1+2,0])
    rotate([0,180,0])
	cylHue(raspD2-4.5,radio);
    

	translate([raspD1,23.5,0])
    rotate([0,180,0])
	cylHue(raspD2-5,radio);

	translate([raspX-raspD1,23.5,0])
    rotate([0,180,0])
	cylHue(raspD2-5,radio);

}

module cylHue(h,radio){
	difference()
	{
		cylinder(r=radio,h,$fn=20);
		translate([0,0,pared-1])
		cylinder(r=1.5,h,$fn=20);
	}
}

module tornillosBaseCamaraCabeza( intCabezaR, intCabezaH )
{
    translate( [12,4,-0.2] )
    huecoParaCabezaTornillo(intCabezaR, intCabezaH);        
    translate( [12,camCubeH-4,-0.2] )
    huecoParaCabezaTornillo(intCabezaR, intCabezaH);        
    
    translate( [camCubeW-4,4,-0.2] )
    huecoParaCabezaTornillo(intCabezaR, intCabezaH);        
    
    translate( [camCubeW-4,camCubeH-4,-0.2] )
    huecoParaCabezaTornillo(intCabezaR, intCabezaH);        
}
